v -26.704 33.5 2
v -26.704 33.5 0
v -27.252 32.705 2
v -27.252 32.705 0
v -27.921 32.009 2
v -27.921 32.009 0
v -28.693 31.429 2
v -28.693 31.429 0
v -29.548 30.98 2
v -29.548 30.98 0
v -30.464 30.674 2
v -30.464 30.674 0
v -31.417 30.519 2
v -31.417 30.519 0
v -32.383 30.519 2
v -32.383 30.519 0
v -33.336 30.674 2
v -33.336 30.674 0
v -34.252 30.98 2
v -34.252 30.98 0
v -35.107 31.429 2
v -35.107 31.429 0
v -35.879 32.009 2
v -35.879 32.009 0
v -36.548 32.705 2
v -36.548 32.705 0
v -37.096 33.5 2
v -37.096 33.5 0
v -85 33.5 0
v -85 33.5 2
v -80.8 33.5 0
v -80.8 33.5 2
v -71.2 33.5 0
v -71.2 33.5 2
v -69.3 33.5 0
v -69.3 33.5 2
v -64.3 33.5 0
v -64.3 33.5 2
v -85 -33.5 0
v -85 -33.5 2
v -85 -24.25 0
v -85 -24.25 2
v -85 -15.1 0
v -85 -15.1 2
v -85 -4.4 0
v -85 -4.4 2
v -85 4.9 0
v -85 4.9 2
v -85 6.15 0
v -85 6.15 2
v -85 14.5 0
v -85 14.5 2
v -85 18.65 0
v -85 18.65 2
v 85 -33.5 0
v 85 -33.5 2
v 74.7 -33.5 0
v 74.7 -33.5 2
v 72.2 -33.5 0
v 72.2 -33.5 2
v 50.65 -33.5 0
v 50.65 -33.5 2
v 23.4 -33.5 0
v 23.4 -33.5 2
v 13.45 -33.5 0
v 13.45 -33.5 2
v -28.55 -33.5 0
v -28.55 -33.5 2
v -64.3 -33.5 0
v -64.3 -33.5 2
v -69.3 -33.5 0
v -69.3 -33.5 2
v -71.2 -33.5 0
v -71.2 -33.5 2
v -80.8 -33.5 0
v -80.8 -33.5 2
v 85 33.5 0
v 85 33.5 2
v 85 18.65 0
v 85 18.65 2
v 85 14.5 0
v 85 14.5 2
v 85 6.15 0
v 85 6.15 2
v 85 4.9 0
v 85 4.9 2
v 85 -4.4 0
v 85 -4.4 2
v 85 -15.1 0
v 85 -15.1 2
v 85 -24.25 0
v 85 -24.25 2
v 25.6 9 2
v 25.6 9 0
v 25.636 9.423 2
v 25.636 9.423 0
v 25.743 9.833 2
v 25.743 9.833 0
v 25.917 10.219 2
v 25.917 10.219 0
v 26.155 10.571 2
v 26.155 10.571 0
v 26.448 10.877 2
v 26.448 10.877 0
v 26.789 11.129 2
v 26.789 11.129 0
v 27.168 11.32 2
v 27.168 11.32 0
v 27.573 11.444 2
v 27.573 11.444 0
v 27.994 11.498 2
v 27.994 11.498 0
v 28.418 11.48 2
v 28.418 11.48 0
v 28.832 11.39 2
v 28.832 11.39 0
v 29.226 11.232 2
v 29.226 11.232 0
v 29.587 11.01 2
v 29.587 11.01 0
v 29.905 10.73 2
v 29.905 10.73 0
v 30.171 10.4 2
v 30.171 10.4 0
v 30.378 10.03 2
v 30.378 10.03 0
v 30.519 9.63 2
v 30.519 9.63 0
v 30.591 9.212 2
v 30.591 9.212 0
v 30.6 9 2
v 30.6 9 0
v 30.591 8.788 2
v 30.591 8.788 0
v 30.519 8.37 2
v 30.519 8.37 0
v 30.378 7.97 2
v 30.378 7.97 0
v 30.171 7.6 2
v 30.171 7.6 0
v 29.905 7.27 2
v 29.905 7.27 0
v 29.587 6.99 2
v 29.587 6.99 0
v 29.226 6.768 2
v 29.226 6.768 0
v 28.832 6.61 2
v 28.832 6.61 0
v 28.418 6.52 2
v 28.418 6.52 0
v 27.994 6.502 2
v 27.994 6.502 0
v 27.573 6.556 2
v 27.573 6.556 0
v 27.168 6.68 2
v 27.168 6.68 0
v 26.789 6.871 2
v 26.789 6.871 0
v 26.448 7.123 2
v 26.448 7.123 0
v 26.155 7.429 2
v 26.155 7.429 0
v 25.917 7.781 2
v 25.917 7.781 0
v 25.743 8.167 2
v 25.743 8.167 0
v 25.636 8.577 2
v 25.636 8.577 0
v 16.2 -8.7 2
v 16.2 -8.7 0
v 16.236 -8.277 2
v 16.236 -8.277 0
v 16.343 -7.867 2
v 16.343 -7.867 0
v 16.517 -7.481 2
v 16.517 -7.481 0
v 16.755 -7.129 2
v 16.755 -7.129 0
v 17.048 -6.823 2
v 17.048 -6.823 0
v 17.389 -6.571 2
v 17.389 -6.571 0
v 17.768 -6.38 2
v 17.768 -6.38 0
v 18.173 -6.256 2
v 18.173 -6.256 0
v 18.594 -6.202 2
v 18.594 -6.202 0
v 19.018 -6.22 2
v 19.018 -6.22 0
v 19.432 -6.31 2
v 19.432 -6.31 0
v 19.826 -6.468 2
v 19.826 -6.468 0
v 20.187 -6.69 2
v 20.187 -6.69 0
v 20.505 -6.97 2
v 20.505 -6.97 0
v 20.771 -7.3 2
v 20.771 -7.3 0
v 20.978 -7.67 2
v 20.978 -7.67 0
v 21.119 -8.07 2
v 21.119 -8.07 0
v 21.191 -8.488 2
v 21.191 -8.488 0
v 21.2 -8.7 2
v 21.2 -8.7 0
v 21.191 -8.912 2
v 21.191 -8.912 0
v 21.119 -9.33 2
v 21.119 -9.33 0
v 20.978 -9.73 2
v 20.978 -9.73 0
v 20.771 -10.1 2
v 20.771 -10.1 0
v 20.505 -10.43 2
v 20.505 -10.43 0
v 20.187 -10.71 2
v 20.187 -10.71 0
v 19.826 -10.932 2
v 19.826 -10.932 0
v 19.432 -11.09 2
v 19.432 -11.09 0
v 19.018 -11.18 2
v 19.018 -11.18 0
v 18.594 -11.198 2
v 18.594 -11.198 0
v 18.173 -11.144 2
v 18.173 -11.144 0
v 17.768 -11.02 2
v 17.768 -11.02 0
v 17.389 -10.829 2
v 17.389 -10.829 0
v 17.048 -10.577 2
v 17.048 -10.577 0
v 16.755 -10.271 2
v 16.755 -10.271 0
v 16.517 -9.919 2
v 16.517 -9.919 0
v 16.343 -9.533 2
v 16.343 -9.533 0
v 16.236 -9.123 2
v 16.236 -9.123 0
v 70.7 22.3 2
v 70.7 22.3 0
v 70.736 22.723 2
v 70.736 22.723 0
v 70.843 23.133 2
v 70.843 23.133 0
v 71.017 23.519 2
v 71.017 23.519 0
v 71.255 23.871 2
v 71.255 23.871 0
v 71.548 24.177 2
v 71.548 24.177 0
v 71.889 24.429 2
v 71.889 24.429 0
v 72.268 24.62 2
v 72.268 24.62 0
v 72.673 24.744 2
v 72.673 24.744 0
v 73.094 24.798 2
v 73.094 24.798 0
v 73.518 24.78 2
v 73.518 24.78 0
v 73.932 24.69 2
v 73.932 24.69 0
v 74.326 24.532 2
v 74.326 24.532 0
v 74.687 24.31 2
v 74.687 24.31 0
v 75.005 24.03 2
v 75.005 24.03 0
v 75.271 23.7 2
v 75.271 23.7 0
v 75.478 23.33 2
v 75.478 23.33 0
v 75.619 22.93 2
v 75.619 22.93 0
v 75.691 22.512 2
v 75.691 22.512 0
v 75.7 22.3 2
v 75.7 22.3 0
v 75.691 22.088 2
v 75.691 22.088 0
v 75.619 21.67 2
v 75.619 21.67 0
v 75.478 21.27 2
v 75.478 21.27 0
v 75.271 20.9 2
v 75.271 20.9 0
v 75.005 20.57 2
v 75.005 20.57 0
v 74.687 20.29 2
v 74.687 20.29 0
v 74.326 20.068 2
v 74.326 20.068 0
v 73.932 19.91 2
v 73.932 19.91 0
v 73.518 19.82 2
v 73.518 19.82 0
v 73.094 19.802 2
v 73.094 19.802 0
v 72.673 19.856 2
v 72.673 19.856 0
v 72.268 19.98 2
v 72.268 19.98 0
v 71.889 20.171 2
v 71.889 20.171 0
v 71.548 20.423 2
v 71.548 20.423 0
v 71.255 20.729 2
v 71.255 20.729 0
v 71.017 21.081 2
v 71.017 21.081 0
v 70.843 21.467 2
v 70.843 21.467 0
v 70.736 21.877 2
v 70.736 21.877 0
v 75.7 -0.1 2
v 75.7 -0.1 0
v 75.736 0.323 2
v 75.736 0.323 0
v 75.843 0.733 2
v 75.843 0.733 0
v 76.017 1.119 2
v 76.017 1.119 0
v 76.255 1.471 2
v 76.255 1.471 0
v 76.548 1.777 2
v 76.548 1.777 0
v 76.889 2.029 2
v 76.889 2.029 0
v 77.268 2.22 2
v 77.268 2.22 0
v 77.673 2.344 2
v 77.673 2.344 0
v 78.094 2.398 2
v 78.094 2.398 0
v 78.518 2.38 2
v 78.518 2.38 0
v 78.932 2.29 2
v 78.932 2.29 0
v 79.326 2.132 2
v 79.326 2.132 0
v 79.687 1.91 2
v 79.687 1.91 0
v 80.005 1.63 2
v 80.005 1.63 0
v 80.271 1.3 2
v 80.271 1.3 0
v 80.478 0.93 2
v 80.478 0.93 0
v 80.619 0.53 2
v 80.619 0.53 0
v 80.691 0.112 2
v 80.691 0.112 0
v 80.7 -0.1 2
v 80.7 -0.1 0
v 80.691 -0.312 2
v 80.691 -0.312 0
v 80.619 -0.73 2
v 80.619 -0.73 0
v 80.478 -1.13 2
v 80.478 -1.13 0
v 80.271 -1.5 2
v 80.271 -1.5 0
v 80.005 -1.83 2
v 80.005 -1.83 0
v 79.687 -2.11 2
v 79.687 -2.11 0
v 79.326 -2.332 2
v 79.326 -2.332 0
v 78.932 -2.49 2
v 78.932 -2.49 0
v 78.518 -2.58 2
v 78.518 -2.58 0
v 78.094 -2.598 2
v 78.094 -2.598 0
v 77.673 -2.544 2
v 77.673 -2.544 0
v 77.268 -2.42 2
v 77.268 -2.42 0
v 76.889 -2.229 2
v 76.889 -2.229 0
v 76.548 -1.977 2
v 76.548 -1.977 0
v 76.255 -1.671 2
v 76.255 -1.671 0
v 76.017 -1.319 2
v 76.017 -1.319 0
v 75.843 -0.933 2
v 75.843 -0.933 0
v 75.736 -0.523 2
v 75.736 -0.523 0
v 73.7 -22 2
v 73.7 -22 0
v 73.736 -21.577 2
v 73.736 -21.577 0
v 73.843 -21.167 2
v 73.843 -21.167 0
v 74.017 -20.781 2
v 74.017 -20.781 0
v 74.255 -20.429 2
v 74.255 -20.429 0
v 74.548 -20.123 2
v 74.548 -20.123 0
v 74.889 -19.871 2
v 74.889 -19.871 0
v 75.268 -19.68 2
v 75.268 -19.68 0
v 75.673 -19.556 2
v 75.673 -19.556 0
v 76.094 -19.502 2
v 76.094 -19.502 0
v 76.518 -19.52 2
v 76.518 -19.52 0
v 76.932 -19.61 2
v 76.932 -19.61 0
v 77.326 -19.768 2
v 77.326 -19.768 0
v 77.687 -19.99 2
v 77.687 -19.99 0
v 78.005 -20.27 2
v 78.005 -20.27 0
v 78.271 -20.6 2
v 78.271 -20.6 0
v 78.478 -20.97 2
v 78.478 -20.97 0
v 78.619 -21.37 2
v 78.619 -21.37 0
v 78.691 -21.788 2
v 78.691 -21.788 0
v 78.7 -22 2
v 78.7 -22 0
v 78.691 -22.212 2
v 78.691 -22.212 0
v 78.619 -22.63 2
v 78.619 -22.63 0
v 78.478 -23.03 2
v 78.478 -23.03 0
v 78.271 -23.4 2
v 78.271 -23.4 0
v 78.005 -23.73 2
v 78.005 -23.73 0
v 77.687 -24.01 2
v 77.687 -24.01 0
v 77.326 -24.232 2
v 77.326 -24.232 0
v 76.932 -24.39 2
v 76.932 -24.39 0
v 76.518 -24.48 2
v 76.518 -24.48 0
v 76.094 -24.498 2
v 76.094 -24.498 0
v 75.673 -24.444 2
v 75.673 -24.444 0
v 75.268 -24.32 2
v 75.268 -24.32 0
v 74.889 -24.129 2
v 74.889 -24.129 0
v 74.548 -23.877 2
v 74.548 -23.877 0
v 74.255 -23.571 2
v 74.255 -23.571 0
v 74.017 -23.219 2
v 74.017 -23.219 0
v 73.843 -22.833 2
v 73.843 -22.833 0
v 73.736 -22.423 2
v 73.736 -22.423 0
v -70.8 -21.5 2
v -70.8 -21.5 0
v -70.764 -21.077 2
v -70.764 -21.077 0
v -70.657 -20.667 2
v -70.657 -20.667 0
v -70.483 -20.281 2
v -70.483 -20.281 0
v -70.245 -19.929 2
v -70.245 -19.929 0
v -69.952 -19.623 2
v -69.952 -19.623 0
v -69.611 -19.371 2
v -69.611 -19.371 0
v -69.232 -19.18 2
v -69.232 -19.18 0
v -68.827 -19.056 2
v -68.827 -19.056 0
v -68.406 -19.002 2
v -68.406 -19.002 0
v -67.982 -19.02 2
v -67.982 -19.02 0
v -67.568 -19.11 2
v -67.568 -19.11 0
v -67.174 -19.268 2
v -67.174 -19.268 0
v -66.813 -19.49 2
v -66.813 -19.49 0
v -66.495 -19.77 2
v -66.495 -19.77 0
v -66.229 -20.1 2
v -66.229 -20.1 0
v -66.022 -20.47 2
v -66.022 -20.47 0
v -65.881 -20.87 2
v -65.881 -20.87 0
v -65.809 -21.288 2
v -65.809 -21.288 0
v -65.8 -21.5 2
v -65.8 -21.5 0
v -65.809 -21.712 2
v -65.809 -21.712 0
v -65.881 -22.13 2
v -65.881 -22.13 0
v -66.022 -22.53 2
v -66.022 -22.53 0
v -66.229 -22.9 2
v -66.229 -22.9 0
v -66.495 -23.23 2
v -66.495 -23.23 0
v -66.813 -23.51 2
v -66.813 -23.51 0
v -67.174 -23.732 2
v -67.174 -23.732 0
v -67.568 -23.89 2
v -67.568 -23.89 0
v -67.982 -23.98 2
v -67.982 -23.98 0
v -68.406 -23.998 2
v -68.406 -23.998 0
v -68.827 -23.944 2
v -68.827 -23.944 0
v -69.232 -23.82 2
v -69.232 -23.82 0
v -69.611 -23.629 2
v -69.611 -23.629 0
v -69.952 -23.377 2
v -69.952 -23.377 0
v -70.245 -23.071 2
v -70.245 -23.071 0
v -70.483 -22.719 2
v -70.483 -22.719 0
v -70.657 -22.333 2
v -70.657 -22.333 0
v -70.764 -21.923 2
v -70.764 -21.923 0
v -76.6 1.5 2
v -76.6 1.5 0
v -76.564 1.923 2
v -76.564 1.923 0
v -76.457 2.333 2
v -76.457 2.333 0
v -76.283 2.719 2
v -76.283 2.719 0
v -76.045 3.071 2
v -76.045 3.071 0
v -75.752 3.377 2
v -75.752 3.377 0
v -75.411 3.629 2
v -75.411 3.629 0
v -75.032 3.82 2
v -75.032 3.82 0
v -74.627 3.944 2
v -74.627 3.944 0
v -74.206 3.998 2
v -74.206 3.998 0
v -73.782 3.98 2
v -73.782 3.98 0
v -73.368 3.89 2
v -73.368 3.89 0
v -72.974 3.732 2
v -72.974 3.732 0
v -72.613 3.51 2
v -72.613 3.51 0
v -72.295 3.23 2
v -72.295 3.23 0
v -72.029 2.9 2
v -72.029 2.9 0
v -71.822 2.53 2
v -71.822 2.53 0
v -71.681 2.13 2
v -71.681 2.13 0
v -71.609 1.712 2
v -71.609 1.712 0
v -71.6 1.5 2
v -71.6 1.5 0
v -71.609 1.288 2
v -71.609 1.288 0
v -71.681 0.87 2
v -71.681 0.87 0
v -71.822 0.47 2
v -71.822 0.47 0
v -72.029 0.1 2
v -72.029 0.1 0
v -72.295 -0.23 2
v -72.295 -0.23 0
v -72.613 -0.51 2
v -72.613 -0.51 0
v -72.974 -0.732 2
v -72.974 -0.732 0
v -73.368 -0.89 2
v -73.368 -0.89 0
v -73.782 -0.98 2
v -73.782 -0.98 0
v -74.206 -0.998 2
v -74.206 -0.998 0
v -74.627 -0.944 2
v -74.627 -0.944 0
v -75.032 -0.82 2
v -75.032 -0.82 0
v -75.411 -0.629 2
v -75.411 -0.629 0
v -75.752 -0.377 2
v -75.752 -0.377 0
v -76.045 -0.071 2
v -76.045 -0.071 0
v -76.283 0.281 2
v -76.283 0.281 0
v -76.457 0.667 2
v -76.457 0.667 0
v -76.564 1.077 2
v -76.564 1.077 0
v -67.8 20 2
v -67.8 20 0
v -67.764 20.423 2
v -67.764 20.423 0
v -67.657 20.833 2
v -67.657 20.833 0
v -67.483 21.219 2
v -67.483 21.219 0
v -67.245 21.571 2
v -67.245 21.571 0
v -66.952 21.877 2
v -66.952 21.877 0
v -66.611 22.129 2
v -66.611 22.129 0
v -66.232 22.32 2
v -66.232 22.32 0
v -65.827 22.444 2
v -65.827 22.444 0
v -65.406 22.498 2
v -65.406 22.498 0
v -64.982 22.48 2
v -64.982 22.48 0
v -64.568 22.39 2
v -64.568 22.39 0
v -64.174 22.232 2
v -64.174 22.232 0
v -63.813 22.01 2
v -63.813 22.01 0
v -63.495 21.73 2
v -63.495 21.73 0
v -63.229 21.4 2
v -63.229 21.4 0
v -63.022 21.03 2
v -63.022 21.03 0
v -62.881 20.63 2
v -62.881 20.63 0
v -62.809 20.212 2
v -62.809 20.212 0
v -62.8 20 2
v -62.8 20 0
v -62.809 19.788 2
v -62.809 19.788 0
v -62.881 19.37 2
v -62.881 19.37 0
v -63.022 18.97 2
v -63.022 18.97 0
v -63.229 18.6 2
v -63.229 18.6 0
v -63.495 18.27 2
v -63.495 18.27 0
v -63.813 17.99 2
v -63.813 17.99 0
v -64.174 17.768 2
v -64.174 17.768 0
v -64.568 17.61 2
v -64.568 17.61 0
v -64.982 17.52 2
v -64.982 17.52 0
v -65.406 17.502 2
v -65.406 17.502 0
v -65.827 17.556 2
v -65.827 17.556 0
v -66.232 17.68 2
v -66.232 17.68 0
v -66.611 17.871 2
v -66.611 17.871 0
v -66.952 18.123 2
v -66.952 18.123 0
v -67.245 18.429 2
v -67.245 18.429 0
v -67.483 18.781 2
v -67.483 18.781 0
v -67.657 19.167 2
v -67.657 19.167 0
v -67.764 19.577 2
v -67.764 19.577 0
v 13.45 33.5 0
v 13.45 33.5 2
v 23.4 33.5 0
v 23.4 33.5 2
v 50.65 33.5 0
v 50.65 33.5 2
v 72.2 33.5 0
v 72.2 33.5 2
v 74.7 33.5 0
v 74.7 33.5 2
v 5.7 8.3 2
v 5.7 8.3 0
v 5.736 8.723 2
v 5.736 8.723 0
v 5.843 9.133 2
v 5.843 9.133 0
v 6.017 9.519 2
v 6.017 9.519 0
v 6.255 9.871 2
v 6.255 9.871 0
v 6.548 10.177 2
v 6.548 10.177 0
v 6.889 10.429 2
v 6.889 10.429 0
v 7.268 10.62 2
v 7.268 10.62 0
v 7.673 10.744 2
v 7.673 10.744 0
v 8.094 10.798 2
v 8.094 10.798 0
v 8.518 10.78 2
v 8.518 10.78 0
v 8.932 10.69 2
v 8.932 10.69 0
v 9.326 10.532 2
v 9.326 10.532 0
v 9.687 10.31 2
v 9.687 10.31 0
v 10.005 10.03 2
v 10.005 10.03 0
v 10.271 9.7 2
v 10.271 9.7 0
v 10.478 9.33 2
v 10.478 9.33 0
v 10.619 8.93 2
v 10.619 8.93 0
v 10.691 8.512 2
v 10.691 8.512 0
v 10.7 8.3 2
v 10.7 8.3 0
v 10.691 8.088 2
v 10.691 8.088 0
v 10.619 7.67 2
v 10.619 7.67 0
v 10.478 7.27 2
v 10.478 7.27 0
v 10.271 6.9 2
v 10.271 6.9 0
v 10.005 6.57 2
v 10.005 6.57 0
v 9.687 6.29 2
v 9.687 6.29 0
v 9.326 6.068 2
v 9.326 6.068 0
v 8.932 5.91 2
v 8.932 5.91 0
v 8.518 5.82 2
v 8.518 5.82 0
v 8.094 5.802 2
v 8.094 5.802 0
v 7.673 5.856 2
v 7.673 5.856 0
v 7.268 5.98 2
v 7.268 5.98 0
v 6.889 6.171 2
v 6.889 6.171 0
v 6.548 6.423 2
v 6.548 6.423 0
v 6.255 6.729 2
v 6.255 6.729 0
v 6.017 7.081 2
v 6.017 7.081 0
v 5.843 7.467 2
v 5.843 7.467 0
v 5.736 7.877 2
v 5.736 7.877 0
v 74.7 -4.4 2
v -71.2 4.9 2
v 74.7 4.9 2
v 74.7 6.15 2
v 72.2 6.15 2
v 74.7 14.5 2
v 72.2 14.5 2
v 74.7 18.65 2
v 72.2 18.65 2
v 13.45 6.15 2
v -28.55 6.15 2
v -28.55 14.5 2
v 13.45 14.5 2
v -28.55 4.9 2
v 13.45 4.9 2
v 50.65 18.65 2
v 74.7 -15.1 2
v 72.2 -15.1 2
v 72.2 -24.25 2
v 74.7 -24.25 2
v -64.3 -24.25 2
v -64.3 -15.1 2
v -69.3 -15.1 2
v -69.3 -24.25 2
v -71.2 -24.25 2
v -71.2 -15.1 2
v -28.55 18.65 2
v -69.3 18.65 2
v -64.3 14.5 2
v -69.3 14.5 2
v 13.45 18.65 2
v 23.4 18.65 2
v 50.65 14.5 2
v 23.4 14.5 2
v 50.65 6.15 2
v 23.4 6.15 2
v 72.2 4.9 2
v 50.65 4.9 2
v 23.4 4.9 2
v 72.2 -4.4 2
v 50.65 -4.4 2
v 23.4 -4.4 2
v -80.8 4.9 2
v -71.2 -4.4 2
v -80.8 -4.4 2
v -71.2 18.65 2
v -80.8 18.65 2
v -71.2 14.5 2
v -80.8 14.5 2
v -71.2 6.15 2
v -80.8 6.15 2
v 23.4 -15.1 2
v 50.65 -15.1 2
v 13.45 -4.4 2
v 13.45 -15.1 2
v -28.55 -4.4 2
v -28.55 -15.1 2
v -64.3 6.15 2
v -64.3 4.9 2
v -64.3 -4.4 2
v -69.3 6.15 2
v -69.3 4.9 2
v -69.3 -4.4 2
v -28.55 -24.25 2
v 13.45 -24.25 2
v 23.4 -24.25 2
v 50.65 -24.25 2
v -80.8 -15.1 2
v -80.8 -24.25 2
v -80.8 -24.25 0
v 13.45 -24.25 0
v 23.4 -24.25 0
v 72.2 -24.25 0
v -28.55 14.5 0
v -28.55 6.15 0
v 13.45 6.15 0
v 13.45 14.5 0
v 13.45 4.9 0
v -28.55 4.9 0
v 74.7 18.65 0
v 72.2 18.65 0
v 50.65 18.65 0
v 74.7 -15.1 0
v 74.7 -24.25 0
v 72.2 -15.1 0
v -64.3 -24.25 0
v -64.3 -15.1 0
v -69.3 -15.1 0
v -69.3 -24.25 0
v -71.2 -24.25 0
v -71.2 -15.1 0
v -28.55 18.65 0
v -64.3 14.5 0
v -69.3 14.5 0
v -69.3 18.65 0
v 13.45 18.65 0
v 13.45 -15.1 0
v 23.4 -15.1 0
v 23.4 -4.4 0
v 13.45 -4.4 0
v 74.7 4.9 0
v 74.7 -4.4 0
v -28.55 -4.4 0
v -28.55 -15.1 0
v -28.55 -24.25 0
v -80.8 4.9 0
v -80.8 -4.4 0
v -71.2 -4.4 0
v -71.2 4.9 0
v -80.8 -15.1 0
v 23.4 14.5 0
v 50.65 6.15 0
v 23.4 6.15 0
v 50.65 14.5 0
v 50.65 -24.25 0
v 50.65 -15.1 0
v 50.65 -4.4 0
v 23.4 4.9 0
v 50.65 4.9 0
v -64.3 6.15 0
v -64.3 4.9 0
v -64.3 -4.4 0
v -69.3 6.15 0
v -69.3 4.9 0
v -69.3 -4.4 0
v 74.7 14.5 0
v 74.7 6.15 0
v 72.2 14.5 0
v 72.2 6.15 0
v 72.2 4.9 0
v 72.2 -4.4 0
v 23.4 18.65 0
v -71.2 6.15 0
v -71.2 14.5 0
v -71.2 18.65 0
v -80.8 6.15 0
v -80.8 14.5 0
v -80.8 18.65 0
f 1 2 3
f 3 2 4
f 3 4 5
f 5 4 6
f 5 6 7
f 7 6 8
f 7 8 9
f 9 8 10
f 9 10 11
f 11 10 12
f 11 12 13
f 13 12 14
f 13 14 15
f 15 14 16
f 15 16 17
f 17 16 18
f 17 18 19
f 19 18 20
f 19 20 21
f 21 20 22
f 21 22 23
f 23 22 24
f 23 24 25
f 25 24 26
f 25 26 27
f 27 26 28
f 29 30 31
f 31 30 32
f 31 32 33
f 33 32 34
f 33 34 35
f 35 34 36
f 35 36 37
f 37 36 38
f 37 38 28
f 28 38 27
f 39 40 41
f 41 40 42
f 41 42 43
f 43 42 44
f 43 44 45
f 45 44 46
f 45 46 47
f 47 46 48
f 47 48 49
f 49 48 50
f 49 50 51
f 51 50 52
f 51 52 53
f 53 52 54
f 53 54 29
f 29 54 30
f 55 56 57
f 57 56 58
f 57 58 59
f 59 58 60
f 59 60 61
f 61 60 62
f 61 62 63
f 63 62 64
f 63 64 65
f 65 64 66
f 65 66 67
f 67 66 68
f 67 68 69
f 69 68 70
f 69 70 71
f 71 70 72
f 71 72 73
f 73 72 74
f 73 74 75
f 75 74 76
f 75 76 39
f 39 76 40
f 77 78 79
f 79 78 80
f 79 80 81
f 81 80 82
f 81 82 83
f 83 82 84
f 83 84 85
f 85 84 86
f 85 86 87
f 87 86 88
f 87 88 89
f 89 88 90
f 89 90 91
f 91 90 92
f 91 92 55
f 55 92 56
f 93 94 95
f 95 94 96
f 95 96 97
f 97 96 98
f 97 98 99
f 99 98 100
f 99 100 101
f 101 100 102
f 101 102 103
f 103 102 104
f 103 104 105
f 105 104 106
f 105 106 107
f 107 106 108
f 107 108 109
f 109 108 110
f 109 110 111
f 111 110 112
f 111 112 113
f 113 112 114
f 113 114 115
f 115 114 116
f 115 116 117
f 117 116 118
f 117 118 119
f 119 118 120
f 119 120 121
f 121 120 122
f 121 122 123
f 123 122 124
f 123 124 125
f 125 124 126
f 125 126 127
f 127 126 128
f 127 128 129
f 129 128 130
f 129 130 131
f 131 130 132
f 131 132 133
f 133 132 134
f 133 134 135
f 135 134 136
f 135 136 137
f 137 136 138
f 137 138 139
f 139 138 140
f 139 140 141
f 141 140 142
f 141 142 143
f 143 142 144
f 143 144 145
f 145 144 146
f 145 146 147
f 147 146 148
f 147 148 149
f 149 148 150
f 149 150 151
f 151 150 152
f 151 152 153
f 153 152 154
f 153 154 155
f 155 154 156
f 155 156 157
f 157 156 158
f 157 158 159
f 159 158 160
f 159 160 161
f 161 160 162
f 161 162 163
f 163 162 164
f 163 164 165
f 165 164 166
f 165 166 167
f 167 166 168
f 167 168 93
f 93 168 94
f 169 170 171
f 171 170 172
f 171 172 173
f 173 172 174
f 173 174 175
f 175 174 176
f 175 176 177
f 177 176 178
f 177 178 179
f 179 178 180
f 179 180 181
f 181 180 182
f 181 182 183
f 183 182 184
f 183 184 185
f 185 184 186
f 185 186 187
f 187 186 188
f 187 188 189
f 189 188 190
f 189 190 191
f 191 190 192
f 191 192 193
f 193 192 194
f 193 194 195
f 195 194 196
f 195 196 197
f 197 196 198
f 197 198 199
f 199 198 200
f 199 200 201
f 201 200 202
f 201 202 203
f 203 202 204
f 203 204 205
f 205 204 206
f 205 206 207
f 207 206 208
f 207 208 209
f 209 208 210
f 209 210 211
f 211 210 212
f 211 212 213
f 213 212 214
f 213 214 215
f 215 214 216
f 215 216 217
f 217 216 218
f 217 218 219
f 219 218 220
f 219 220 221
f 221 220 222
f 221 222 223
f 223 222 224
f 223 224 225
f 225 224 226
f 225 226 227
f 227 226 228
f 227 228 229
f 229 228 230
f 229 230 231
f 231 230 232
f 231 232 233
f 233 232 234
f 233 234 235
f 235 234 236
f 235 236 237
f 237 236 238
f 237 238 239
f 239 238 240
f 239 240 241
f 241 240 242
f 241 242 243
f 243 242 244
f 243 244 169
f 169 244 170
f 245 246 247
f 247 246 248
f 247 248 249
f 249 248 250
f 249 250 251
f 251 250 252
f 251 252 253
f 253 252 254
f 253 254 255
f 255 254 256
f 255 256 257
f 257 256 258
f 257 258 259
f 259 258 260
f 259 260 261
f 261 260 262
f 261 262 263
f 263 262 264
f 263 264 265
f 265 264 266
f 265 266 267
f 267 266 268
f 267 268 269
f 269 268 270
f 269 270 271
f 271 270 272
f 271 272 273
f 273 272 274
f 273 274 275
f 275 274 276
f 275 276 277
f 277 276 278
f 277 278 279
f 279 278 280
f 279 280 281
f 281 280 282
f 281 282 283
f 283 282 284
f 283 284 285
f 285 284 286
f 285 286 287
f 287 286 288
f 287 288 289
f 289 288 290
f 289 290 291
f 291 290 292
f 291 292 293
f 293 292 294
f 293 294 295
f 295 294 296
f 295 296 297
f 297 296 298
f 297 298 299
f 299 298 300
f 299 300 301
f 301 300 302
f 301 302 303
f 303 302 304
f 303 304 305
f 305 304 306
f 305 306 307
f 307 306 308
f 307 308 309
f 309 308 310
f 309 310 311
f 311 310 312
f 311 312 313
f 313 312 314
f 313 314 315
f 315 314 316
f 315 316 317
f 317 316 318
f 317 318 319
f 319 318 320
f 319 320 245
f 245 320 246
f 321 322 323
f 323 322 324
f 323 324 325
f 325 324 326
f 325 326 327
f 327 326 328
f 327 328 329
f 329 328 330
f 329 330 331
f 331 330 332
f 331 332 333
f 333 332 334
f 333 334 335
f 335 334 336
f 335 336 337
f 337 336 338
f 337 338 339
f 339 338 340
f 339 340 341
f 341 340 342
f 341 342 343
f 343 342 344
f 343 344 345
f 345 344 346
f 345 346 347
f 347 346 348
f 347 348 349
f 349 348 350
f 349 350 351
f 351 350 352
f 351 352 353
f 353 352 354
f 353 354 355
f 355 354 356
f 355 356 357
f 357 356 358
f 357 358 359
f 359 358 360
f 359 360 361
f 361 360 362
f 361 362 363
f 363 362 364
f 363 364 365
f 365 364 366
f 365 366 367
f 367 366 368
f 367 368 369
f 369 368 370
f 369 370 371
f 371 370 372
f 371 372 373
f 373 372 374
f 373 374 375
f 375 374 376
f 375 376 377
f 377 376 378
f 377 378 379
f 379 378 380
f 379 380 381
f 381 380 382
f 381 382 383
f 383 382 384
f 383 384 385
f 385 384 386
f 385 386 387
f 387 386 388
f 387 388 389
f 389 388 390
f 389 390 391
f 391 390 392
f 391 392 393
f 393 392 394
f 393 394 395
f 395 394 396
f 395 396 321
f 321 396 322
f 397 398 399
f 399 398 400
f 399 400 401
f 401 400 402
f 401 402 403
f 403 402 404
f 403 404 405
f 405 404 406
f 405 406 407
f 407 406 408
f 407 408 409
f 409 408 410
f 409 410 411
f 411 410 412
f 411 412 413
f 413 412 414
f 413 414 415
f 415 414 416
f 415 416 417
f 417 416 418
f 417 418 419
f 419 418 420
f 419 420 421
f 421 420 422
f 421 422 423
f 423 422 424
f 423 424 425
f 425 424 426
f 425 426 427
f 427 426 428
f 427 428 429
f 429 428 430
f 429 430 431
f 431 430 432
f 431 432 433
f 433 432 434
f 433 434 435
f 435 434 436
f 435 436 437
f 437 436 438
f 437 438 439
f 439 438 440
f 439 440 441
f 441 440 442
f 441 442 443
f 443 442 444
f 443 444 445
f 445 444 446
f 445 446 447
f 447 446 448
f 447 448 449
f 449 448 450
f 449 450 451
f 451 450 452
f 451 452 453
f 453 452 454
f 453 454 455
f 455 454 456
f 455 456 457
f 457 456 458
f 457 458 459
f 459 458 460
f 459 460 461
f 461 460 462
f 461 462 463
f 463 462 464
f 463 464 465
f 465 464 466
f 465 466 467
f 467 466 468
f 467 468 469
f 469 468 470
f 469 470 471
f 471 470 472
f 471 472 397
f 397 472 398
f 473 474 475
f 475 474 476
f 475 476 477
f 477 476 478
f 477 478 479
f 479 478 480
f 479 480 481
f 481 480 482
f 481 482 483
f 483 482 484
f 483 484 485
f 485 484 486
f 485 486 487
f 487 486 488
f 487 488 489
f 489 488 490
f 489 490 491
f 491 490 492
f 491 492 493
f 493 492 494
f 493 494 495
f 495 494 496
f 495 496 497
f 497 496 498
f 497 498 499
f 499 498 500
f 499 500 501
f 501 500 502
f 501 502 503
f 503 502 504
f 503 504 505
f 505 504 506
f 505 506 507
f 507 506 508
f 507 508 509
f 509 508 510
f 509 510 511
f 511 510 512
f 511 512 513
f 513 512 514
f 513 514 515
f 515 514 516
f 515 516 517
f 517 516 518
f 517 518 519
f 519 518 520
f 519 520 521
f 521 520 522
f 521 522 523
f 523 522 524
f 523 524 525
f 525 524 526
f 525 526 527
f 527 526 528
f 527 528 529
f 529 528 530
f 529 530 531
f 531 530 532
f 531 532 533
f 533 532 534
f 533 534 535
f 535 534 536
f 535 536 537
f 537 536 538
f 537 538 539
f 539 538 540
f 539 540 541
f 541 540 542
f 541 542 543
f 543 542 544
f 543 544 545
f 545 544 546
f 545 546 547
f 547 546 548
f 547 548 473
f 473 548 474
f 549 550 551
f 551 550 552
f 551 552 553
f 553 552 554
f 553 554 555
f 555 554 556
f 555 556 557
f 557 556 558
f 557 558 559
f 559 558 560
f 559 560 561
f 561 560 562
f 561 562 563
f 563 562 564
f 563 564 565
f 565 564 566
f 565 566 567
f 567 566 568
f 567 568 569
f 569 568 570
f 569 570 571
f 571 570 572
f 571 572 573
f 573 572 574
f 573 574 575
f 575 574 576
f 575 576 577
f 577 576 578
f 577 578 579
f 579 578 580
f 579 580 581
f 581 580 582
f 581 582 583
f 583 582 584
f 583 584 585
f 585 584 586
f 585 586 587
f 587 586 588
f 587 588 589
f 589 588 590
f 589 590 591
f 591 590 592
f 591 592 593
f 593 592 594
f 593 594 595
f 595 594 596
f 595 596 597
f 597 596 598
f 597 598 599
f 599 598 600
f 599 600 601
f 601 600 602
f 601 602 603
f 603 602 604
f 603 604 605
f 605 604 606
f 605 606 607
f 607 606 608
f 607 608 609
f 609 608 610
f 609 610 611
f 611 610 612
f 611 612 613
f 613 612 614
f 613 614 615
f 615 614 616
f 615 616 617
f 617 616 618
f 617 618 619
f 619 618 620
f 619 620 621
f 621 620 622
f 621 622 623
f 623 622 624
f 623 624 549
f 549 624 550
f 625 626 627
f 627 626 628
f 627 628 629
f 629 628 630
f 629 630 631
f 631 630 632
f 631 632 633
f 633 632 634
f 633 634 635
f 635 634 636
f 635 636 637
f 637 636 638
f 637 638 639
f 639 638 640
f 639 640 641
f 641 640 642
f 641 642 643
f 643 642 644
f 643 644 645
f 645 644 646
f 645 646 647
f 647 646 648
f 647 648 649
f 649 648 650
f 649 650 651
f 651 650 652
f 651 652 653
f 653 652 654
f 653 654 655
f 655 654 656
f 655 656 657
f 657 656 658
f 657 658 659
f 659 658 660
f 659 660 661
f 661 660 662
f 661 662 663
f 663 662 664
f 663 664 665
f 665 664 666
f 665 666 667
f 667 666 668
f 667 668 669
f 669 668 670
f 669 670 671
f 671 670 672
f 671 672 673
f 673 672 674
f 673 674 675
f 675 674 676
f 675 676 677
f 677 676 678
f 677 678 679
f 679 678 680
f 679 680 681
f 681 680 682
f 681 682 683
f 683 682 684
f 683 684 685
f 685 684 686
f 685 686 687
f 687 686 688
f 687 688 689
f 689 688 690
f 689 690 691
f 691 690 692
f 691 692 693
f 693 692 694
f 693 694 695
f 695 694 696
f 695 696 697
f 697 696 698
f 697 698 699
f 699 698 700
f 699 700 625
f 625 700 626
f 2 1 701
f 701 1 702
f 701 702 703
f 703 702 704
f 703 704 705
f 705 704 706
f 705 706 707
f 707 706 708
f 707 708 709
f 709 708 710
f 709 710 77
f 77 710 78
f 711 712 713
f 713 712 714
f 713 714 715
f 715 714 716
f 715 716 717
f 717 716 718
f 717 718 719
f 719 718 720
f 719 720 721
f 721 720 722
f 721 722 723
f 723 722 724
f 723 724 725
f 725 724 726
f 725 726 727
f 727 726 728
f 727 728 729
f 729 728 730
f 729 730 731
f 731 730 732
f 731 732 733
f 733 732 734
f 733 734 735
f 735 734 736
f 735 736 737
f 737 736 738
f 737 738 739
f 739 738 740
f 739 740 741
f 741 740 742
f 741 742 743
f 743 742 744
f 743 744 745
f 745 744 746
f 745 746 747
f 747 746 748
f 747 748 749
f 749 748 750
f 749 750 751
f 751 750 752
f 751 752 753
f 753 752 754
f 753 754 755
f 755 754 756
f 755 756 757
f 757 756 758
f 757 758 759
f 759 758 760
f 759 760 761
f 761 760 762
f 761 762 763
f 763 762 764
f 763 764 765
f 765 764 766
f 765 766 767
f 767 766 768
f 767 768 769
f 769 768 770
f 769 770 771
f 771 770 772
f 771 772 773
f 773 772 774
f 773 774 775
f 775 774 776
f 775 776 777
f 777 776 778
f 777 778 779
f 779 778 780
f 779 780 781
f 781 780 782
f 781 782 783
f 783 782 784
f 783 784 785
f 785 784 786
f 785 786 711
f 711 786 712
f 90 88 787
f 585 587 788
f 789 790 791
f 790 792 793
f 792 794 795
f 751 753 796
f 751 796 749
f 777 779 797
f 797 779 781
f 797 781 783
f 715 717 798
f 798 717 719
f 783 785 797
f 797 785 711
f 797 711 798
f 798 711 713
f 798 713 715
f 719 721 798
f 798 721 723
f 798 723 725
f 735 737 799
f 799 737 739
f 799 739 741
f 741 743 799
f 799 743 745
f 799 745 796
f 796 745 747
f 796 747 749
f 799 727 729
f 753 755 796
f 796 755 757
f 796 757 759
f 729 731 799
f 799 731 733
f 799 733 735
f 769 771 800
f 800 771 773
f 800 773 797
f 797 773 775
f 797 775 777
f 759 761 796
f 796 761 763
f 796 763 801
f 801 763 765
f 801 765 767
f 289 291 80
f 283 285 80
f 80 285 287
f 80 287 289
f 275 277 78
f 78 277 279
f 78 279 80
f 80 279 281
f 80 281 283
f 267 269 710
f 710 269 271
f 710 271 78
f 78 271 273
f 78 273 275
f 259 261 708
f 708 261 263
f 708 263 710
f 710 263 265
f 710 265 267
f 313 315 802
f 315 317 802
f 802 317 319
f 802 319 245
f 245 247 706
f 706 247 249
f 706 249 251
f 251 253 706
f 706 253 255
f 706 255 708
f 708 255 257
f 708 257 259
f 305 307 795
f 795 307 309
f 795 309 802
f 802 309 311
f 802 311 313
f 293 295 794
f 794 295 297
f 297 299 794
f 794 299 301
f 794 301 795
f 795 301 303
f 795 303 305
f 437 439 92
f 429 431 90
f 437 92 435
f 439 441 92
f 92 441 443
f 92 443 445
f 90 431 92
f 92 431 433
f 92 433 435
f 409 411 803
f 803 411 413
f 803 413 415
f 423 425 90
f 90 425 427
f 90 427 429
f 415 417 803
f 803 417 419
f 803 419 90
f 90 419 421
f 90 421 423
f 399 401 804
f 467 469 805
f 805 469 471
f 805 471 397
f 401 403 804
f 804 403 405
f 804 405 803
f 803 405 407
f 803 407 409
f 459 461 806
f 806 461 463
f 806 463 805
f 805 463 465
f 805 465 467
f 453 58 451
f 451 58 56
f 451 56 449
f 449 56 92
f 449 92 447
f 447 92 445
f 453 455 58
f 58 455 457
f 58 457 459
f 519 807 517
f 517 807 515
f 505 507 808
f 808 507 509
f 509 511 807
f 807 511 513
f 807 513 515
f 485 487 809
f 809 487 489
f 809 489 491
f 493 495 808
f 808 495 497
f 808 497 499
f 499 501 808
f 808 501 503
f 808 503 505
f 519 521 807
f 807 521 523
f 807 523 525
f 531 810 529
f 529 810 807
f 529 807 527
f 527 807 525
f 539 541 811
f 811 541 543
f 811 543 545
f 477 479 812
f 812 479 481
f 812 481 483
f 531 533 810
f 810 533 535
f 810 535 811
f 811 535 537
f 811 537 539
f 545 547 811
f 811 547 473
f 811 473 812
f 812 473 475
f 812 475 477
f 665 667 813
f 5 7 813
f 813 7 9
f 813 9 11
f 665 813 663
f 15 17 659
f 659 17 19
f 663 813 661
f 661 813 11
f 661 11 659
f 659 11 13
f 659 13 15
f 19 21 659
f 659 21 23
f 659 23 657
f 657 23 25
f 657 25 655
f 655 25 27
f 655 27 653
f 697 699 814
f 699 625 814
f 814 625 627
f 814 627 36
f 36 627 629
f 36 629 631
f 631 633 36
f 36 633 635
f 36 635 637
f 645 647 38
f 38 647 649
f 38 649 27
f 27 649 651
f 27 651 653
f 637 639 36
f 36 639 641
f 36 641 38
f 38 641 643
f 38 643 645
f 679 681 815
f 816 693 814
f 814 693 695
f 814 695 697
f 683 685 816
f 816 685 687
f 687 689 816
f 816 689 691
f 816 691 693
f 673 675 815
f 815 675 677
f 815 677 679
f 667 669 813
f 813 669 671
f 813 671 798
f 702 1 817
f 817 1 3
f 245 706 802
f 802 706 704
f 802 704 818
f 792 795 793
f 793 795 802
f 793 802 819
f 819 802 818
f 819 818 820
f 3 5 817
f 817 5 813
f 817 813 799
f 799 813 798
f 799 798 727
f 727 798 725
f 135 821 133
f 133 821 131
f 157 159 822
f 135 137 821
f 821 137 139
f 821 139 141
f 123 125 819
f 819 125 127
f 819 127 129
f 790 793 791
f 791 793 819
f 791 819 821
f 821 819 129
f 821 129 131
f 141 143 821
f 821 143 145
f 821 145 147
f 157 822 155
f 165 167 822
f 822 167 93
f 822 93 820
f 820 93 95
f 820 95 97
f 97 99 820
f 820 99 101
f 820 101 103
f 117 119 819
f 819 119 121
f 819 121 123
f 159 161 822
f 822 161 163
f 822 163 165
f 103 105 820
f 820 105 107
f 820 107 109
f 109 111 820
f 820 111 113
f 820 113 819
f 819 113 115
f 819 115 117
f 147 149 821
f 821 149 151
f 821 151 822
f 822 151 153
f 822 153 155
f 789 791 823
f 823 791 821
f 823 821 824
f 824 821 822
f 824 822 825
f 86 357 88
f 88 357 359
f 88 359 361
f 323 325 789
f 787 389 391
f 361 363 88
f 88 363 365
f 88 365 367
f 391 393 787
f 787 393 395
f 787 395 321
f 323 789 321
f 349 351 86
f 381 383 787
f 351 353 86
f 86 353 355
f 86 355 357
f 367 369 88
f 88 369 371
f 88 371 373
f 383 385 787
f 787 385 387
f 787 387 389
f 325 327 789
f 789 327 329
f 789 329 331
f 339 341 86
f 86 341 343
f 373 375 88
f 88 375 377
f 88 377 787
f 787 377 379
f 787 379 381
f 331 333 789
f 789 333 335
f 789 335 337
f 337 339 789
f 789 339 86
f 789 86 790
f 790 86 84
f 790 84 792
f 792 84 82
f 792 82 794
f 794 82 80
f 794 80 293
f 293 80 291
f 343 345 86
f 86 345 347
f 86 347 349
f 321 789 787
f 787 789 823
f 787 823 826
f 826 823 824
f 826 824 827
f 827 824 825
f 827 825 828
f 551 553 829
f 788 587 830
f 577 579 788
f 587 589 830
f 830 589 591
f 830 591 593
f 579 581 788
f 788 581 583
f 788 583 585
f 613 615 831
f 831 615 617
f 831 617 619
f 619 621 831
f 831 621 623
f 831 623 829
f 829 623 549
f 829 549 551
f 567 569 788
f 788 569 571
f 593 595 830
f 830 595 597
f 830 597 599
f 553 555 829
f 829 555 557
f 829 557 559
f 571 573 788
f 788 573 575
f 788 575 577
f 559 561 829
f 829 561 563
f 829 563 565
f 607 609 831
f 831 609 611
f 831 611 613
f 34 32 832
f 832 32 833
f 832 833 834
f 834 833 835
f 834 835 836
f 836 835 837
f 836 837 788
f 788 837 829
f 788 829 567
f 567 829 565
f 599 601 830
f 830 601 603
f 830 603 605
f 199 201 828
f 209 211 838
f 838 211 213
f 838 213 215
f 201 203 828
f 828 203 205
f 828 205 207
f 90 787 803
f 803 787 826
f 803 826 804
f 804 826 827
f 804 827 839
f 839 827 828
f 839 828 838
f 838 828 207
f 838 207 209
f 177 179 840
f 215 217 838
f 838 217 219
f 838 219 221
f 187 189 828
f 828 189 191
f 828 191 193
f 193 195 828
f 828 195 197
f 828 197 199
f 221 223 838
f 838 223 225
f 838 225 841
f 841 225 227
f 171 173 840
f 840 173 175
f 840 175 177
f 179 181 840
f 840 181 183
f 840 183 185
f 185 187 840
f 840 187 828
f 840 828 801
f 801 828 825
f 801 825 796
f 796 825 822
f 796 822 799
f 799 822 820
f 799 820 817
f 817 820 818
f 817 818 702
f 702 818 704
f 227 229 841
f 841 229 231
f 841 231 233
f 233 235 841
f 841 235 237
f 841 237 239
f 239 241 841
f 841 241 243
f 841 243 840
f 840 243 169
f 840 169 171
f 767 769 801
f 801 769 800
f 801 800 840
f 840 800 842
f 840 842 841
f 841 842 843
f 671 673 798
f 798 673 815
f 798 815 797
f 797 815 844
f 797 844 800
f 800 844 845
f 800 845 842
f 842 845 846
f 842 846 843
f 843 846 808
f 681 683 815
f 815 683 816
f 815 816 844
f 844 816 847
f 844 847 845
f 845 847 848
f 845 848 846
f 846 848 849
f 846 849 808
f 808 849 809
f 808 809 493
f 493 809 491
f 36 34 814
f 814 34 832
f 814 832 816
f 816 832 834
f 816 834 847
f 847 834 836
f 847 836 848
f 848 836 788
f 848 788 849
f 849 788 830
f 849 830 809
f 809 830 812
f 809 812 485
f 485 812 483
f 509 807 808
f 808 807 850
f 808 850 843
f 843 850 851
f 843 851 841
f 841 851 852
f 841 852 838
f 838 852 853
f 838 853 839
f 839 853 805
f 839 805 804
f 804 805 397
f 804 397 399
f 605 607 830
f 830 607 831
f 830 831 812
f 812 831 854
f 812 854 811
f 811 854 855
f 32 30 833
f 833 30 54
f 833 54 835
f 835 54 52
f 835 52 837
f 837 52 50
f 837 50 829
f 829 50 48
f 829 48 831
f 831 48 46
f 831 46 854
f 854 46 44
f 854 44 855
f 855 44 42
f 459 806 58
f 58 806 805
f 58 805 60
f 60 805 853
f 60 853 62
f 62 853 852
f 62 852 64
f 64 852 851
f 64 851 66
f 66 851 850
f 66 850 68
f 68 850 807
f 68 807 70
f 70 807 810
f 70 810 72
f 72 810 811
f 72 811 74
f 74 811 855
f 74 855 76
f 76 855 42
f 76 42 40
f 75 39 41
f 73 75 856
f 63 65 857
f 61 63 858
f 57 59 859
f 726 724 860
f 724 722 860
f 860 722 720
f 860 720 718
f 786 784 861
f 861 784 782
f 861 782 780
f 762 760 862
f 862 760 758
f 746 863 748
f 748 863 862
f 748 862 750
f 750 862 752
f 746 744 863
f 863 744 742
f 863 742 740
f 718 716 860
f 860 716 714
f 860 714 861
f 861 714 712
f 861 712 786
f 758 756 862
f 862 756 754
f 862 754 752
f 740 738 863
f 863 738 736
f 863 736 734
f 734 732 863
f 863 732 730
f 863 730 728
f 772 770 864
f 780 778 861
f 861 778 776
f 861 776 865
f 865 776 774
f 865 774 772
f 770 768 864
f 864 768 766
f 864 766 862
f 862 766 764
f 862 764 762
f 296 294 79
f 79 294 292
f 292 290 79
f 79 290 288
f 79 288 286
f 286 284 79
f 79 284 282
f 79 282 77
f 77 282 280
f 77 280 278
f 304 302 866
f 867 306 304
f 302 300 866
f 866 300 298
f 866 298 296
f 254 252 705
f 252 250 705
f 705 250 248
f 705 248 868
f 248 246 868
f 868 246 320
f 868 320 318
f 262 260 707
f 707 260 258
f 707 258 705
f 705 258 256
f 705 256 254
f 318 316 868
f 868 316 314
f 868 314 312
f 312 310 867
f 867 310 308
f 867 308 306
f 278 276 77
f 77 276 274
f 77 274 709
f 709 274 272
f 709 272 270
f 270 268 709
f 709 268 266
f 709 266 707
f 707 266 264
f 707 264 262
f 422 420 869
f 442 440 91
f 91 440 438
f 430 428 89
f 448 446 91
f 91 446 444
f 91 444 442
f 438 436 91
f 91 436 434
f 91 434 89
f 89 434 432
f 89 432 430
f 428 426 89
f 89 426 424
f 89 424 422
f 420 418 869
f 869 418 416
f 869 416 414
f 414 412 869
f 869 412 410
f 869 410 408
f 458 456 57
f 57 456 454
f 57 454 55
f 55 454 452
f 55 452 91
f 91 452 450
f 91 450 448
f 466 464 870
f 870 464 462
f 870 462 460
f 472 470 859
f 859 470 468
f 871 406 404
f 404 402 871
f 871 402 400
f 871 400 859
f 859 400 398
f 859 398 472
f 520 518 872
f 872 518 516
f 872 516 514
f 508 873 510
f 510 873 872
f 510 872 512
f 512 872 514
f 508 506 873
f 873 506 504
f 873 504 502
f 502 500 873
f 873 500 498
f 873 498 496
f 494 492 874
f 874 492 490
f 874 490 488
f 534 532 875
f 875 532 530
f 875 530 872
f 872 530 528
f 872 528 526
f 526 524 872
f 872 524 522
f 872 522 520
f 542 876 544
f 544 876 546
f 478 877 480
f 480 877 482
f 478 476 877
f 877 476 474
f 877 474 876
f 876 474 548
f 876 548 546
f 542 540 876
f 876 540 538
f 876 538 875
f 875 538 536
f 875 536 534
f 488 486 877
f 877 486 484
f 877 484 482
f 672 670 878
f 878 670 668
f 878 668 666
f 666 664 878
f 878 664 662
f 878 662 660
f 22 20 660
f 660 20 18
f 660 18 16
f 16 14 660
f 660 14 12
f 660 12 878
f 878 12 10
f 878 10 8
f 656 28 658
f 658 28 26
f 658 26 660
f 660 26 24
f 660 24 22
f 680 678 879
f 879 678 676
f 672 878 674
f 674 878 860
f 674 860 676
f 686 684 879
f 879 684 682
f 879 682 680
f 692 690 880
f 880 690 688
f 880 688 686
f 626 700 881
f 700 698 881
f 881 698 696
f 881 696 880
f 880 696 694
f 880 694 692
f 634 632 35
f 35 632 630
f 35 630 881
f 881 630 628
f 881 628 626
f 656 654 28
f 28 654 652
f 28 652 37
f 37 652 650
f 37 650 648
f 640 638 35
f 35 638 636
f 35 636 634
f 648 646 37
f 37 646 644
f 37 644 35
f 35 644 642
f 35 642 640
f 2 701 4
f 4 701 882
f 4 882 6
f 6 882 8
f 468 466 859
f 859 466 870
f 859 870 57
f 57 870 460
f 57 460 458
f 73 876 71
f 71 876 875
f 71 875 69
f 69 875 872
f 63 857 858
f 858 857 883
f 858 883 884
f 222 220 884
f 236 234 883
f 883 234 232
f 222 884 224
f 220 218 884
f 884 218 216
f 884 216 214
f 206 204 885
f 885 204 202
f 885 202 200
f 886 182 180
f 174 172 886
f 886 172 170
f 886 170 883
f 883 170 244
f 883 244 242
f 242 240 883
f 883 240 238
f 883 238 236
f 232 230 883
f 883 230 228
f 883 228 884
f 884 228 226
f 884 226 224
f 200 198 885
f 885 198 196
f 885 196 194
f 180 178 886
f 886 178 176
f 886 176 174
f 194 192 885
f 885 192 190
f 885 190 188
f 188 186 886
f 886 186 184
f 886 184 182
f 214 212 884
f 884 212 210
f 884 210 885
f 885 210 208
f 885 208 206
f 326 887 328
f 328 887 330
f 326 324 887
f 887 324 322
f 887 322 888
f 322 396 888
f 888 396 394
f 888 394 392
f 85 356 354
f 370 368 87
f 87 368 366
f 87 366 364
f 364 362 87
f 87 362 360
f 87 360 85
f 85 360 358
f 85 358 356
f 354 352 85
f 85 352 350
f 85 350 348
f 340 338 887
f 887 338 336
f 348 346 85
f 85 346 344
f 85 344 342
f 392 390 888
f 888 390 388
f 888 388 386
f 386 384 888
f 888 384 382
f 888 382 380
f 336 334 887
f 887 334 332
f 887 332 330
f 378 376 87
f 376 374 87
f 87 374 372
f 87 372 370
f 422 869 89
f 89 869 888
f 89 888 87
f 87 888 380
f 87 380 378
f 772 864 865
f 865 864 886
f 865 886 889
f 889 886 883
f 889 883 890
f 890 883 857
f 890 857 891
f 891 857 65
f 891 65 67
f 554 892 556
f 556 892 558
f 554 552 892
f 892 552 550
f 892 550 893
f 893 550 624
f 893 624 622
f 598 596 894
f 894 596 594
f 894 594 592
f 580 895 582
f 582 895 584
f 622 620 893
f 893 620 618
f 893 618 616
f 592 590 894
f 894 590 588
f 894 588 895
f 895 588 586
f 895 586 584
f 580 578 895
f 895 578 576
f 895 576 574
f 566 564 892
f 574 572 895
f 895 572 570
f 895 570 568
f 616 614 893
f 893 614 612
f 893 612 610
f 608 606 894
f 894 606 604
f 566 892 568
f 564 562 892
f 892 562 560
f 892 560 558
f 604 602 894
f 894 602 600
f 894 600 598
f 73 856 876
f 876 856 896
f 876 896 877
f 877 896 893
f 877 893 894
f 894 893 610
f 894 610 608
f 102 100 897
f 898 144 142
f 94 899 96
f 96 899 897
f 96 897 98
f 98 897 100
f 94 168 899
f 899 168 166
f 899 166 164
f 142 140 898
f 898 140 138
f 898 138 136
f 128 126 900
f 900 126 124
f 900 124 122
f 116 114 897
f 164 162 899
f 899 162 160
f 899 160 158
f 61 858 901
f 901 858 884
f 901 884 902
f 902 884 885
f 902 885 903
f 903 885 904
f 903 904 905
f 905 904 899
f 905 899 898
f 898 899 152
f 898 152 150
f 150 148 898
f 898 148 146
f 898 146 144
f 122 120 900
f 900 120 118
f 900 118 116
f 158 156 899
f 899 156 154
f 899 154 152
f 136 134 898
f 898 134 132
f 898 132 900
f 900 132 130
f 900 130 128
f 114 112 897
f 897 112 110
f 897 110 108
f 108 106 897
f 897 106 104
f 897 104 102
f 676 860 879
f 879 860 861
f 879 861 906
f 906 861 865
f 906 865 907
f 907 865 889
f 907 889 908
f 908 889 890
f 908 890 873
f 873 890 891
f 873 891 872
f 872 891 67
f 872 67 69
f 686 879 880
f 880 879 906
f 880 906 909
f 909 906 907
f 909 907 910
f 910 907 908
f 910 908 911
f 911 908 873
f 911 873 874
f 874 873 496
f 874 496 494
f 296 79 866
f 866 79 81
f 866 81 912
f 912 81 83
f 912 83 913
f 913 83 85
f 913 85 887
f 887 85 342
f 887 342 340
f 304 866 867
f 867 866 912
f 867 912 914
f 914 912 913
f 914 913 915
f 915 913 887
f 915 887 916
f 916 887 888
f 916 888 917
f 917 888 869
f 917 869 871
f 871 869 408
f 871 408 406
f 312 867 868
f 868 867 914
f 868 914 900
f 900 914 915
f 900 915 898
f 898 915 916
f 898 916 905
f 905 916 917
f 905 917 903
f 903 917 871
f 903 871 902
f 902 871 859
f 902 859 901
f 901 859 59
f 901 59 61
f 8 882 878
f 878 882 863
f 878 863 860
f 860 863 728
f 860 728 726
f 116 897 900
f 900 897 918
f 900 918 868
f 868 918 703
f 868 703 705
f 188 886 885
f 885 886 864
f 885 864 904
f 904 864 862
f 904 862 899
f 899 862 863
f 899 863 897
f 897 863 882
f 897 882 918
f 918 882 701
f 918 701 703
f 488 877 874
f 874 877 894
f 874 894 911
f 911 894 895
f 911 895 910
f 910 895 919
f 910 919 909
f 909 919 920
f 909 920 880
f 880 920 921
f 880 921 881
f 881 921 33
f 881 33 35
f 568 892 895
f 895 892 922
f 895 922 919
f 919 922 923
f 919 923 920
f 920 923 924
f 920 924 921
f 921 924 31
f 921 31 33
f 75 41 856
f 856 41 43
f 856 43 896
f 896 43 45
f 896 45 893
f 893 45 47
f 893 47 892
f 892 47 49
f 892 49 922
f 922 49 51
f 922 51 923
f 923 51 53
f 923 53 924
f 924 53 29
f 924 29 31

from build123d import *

# Parameters (mm, degrees)
SKETCH1_R           = 2.5
BOSS_EXTRUDE1_DEPTH = 2


with BuildPart() as part:
    # Sketch1 → Boss-Extrude1 (new body)
    with BuildSketch(Plane.XY):
        with BuildLine():
            Line((-85, 33.5), (-85, -33.5))
            Line((-85, -33.5), (85, -33.5))
            Line((85, -33.5), (85, 33.5))
            Line((85, 33.5), (-26.703847577, 33.5))
            ThreePointArc((-26.703847577, 33.5), (-31.9, 30.5), (-37.096152423, 33.5))
            Line((-37.096152423, 33.5), (-85, 33.5))
        make_face()
        with Locations((-68.3, -21.5)):
            Circle(SKETCH1_R, mode=Mode.SUBTRACT)
        with Locations((-74.1, 1.5)):
            Circle(SKETCH1_R, mode=Mode.SUBTRACT)
        with Locations((76.2, -22)):
            Circle(SKETCH1_R, mode=Mode.SUBTRACT)
        with Locations((18.7, -8.7)):
            Circle(SKETCH1_R, mode=Mode.SUBTRACT)
        with Locations((78.2, -0.1)):
            Circle(SKETCH1_R, mode=Mode.SUBTRACT)
        with Locations((-65.3, 20)):
            Circle(SKETCH1_R, mode=Mode.SUBTRACT)
        with Locations((8.2, 8.3)):
            Circle(SKETCH1_R, mode=Mode.SUBTRACT)
        with Locations((28.1, 9)):
            Circle(SKETCH1_R, mode=Mode.SUBTRACT)
        with Locations((73.2, 22.3)):
            Circle(SKETCH1_R, mode=Mode.SUBTRACT)
    extrude(amount=BOSS_EXTRUDE1_DEPTH)


solid = part.part
